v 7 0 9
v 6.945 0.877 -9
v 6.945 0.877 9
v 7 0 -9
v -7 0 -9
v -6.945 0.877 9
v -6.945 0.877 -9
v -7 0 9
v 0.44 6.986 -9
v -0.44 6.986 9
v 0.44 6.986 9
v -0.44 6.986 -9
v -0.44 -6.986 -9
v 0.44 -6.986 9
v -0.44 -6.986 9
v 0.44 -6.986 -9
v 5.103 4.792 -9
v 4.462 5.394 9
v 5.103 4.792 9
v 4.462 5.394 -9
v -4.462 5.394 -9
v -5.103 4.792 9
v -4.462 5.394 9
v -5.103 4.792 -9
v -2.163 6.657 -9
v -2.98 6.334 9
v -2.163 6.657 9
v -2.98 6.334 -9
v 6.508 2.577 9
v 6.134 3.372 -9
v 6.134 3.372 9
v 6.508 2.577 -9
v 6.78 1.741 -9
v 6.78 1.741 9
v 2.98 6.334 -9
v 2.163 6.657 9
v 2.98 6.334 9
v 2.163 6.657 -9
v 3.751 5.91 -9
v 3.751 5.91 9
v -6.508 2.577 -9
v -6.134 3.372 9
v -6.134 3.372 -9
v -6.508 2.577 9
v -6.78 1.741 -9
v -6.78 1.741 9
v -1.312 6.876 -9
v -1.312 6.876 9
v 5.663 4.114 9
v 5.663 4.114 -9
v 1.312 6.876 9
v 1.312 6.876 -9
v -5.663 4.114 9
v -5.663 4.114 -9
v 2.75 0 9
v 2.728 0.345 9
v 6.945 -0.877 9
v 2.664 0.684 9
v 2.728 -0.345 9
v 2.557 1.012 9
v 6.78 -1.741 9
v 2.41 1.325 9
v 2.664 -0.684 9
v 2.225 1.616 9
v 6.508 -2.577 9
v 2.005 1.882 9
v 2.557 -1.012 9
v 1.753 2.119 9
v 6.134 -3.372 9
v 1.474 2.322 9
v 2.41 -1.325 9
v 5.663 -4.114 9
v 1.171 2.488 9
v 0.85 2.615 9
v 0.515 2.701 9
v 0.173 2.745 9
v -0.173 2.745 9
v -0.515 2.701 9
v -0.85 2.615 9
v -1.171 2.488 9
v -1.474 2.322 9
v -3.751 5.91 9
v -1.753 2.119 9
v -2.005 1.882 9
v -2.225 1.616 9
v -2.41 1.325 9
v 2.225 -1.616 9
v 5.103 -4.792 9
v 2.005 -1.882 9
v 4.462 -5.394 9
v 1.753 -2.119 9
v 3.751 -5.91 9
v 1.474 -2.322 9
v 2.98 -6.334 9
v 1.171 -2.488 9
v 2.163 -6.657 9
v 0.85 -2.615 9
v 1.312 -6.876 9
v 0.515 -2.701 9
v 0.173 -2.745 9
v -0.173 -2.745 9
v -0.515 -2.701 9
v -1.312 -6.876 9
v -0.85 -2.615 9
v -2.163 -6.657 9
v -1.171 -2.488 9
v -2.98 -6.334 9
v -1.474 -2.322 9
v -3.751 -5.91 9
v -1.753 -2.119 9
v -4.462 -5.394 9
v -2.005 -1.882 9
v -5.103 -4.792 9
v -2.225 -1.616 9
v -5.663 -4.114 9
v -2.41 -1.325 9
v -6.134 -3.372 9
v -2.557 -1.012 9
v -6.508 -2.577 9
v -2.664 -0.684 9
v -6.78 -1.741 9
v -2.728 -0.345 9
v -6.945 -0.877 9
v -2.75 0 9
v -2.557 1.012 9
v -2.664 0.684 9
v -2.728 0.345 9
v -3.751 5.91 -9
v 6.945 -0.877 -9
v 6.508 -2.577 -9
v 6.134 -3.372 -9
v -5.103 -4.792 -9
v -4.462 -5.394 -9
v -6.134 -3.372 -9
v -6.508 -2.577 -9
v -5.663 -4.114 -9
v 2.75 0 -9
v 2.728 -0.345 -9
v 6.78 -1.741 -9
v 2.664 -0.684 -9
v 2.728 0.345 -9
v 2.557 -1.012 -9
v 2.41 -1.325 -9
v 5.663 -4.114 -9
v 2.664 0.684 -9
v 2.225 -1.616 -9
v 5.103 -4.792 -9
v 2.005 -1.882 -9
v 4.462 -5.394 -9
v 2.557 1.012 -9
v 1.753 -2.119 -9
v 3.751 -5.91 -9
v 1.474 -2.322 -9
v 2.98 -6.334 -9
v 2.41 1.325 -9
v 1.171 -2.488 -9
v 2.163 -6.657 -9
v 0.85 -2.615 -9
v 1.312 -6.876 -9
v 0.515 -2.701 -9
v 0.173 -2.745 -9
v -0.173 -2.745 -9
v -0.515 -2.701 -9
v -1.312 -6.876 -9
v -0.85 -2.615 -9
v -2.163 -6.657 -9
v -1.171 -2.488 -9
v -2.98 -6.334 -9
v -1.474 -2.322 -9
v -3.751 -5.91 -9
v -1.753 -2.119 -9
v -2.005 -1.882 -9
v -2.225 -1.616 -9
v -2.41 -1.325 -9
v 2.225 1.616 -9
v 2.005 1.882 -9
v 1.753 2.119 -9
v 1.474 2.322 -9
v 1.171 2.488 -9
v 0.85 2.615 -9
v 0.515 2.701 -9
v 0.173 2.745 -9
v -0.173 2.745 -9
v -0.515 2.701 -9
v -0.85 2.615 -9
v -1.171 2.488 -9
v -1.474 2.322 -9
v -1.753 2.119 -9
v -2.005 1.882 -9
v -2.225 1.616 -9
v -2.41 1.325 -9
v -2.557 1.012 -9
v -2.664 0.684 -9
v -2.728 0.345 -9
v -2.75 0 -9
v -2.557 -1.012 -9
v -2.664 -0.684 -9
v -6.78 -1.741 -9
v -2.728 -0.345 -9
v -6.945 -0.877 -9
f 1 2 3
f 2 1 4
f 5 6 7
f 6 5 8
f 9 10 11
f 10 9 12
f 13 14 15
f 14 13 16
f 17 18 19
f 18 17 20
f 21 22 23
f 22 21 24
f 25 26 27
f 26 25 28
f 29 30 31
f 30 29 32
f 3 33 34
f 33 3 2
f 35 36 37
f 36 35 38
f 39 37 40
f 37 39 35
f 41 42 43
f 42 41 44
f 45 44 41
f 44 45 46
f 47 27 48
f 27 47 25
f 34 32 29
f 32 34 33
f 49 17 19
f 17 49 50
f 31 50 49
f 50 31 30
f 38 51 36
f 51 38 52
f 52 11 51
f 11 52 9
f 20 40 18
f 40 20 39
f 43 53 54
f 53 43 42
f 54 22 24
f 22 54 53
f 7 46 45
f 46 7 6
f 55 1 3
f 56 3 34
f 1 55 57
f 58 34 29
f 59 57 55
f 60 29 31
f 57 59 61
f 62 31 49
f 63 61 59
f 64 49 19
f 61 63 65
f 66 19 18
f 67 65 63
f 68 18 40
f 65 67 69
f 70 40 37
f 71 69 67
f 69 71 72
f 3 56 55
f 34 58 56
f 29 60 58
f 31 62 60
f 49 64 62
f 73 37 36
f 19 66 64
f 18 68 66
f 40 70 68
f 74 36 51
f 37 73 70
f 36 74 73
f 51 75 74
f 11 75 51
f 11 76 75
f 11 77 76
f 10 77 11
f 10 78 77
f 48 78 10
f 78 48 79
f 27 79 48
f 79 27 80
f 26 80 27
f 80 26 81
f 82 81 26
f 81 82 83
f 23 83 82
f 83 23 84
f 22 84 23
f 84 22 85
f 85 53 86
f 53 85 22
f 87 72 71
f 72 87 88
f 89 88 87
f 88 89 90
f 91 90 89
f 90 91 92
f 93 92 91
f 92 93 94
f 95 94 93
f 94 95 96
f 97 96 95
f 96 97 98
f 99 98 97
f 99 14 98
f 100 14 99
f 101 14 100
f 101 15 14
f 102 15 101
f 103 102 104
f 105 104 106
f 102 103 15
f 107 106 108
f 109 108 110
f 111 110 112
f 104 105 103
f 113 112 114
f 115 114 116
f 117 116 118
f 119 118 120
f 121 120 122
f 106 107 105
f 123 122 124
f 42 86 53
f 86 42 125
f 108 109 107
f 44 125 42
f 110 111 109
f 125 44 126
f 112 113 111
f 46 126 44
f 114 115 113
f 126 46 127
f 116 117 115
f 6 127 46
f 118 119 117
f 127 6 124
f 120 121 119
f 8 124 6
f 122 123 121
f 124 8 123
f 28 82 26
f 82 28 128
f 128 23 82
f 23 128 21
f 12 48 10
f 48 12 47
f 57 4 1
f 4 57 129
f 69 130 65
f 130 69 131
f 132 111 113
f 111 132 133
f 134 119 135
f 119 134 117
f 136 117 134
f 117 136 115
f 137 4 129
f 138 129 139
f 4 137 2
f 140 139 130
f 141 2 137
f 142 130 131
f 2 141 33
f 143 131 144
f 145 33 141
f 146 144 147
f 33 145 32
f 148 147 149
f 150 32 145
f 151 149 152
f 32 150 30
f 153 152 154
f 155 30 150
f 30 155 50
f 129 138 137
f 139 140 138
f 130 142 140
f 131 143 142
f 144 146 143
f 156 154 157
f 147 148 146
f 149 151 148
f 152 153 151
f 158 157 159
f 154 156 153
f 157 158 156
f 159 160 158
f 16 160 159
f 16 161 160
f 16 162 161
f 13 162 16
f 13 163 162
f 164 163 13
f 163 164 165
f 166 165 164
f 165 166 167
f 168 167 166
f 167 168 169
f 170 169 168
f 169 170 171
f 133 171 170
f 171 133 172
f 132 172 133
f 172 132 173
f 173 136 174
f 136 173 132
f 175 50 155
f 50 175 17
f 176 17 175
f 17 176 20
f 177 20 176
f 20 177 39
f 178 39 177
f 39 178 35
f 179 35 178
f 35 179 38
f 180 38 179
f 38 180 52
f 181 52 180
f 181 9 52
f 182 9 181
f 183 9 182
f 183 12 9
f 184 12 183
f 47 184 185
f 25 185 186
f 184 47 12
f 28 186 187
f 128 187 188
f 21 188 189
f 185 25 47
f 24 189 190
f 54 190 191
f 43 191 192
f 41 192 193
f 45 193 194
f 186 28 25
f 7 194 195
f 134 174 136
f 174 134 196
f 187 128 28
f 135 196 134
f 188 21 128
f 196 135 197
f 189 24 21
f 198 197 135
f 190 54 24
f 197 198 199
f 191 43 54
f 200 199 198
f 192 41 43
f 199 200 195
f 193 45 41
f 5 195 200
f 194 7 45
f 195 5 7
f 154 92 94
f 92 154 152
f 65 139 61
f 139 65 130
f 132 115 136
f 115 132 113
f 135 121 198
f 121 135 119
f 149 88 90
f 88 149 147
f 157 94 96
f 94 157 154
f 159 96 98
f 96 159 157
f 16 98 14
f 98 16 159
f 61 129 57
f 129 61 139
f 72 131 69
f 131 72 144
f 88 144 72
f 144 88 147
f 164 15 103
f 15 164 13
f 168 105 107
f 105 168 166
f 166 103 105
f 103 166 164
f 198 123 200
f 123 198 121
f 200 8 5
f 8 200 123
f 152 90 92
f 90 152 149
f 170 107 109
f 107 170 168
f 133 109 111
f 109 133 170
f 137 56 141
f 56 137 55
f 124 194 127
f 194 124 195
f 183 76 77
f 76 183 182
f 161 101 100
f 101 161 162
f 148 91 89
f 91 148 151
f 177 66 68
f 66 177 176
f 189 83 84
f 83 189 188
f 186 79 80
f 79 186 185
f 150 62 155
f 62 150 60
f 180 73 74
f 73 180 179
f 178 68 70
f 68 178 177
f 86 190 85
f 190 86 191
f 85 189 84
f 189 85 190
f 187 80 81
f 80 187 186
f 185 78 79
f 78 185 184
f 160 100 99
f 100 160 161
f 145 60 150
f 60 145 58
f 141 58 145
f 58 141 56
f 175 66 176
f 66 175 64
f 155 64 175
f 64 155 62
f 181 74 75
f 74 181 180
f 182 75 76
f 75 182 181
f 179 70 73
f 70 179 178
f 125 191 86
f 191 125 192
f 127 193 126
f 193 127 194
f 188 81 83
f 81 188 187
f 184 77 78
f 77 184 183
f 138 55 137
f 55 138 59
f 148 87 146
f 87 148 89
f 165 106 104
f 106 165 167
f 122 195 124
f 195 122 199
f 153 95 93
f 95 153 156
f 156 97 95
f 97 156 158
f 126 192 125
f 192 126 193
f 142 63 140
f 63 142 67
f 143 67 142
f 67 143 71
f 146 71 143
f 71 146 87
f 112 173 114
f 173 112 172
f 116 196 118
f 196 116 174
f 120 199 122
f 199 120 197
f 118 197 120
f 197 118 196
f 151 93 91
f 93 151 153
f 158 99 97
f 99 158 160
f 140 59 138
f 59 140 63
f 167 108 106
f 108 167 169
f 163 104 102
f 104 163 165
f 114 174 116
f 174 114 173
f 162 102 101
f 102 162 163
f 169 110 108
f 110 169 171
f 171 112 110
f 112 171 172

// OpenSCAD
$fn = 50;


difference() {
	union() {
		translate(v = [0, 0, -9.0000000000]) {
			cylinder(h = 18, r = 7.0000000000);
		}
	}
	union() {
		translate(v = [0, 0, -100.0000000000]) {
			cylinder(h = 200, r = 2.7500000000);
		}
	}
}
